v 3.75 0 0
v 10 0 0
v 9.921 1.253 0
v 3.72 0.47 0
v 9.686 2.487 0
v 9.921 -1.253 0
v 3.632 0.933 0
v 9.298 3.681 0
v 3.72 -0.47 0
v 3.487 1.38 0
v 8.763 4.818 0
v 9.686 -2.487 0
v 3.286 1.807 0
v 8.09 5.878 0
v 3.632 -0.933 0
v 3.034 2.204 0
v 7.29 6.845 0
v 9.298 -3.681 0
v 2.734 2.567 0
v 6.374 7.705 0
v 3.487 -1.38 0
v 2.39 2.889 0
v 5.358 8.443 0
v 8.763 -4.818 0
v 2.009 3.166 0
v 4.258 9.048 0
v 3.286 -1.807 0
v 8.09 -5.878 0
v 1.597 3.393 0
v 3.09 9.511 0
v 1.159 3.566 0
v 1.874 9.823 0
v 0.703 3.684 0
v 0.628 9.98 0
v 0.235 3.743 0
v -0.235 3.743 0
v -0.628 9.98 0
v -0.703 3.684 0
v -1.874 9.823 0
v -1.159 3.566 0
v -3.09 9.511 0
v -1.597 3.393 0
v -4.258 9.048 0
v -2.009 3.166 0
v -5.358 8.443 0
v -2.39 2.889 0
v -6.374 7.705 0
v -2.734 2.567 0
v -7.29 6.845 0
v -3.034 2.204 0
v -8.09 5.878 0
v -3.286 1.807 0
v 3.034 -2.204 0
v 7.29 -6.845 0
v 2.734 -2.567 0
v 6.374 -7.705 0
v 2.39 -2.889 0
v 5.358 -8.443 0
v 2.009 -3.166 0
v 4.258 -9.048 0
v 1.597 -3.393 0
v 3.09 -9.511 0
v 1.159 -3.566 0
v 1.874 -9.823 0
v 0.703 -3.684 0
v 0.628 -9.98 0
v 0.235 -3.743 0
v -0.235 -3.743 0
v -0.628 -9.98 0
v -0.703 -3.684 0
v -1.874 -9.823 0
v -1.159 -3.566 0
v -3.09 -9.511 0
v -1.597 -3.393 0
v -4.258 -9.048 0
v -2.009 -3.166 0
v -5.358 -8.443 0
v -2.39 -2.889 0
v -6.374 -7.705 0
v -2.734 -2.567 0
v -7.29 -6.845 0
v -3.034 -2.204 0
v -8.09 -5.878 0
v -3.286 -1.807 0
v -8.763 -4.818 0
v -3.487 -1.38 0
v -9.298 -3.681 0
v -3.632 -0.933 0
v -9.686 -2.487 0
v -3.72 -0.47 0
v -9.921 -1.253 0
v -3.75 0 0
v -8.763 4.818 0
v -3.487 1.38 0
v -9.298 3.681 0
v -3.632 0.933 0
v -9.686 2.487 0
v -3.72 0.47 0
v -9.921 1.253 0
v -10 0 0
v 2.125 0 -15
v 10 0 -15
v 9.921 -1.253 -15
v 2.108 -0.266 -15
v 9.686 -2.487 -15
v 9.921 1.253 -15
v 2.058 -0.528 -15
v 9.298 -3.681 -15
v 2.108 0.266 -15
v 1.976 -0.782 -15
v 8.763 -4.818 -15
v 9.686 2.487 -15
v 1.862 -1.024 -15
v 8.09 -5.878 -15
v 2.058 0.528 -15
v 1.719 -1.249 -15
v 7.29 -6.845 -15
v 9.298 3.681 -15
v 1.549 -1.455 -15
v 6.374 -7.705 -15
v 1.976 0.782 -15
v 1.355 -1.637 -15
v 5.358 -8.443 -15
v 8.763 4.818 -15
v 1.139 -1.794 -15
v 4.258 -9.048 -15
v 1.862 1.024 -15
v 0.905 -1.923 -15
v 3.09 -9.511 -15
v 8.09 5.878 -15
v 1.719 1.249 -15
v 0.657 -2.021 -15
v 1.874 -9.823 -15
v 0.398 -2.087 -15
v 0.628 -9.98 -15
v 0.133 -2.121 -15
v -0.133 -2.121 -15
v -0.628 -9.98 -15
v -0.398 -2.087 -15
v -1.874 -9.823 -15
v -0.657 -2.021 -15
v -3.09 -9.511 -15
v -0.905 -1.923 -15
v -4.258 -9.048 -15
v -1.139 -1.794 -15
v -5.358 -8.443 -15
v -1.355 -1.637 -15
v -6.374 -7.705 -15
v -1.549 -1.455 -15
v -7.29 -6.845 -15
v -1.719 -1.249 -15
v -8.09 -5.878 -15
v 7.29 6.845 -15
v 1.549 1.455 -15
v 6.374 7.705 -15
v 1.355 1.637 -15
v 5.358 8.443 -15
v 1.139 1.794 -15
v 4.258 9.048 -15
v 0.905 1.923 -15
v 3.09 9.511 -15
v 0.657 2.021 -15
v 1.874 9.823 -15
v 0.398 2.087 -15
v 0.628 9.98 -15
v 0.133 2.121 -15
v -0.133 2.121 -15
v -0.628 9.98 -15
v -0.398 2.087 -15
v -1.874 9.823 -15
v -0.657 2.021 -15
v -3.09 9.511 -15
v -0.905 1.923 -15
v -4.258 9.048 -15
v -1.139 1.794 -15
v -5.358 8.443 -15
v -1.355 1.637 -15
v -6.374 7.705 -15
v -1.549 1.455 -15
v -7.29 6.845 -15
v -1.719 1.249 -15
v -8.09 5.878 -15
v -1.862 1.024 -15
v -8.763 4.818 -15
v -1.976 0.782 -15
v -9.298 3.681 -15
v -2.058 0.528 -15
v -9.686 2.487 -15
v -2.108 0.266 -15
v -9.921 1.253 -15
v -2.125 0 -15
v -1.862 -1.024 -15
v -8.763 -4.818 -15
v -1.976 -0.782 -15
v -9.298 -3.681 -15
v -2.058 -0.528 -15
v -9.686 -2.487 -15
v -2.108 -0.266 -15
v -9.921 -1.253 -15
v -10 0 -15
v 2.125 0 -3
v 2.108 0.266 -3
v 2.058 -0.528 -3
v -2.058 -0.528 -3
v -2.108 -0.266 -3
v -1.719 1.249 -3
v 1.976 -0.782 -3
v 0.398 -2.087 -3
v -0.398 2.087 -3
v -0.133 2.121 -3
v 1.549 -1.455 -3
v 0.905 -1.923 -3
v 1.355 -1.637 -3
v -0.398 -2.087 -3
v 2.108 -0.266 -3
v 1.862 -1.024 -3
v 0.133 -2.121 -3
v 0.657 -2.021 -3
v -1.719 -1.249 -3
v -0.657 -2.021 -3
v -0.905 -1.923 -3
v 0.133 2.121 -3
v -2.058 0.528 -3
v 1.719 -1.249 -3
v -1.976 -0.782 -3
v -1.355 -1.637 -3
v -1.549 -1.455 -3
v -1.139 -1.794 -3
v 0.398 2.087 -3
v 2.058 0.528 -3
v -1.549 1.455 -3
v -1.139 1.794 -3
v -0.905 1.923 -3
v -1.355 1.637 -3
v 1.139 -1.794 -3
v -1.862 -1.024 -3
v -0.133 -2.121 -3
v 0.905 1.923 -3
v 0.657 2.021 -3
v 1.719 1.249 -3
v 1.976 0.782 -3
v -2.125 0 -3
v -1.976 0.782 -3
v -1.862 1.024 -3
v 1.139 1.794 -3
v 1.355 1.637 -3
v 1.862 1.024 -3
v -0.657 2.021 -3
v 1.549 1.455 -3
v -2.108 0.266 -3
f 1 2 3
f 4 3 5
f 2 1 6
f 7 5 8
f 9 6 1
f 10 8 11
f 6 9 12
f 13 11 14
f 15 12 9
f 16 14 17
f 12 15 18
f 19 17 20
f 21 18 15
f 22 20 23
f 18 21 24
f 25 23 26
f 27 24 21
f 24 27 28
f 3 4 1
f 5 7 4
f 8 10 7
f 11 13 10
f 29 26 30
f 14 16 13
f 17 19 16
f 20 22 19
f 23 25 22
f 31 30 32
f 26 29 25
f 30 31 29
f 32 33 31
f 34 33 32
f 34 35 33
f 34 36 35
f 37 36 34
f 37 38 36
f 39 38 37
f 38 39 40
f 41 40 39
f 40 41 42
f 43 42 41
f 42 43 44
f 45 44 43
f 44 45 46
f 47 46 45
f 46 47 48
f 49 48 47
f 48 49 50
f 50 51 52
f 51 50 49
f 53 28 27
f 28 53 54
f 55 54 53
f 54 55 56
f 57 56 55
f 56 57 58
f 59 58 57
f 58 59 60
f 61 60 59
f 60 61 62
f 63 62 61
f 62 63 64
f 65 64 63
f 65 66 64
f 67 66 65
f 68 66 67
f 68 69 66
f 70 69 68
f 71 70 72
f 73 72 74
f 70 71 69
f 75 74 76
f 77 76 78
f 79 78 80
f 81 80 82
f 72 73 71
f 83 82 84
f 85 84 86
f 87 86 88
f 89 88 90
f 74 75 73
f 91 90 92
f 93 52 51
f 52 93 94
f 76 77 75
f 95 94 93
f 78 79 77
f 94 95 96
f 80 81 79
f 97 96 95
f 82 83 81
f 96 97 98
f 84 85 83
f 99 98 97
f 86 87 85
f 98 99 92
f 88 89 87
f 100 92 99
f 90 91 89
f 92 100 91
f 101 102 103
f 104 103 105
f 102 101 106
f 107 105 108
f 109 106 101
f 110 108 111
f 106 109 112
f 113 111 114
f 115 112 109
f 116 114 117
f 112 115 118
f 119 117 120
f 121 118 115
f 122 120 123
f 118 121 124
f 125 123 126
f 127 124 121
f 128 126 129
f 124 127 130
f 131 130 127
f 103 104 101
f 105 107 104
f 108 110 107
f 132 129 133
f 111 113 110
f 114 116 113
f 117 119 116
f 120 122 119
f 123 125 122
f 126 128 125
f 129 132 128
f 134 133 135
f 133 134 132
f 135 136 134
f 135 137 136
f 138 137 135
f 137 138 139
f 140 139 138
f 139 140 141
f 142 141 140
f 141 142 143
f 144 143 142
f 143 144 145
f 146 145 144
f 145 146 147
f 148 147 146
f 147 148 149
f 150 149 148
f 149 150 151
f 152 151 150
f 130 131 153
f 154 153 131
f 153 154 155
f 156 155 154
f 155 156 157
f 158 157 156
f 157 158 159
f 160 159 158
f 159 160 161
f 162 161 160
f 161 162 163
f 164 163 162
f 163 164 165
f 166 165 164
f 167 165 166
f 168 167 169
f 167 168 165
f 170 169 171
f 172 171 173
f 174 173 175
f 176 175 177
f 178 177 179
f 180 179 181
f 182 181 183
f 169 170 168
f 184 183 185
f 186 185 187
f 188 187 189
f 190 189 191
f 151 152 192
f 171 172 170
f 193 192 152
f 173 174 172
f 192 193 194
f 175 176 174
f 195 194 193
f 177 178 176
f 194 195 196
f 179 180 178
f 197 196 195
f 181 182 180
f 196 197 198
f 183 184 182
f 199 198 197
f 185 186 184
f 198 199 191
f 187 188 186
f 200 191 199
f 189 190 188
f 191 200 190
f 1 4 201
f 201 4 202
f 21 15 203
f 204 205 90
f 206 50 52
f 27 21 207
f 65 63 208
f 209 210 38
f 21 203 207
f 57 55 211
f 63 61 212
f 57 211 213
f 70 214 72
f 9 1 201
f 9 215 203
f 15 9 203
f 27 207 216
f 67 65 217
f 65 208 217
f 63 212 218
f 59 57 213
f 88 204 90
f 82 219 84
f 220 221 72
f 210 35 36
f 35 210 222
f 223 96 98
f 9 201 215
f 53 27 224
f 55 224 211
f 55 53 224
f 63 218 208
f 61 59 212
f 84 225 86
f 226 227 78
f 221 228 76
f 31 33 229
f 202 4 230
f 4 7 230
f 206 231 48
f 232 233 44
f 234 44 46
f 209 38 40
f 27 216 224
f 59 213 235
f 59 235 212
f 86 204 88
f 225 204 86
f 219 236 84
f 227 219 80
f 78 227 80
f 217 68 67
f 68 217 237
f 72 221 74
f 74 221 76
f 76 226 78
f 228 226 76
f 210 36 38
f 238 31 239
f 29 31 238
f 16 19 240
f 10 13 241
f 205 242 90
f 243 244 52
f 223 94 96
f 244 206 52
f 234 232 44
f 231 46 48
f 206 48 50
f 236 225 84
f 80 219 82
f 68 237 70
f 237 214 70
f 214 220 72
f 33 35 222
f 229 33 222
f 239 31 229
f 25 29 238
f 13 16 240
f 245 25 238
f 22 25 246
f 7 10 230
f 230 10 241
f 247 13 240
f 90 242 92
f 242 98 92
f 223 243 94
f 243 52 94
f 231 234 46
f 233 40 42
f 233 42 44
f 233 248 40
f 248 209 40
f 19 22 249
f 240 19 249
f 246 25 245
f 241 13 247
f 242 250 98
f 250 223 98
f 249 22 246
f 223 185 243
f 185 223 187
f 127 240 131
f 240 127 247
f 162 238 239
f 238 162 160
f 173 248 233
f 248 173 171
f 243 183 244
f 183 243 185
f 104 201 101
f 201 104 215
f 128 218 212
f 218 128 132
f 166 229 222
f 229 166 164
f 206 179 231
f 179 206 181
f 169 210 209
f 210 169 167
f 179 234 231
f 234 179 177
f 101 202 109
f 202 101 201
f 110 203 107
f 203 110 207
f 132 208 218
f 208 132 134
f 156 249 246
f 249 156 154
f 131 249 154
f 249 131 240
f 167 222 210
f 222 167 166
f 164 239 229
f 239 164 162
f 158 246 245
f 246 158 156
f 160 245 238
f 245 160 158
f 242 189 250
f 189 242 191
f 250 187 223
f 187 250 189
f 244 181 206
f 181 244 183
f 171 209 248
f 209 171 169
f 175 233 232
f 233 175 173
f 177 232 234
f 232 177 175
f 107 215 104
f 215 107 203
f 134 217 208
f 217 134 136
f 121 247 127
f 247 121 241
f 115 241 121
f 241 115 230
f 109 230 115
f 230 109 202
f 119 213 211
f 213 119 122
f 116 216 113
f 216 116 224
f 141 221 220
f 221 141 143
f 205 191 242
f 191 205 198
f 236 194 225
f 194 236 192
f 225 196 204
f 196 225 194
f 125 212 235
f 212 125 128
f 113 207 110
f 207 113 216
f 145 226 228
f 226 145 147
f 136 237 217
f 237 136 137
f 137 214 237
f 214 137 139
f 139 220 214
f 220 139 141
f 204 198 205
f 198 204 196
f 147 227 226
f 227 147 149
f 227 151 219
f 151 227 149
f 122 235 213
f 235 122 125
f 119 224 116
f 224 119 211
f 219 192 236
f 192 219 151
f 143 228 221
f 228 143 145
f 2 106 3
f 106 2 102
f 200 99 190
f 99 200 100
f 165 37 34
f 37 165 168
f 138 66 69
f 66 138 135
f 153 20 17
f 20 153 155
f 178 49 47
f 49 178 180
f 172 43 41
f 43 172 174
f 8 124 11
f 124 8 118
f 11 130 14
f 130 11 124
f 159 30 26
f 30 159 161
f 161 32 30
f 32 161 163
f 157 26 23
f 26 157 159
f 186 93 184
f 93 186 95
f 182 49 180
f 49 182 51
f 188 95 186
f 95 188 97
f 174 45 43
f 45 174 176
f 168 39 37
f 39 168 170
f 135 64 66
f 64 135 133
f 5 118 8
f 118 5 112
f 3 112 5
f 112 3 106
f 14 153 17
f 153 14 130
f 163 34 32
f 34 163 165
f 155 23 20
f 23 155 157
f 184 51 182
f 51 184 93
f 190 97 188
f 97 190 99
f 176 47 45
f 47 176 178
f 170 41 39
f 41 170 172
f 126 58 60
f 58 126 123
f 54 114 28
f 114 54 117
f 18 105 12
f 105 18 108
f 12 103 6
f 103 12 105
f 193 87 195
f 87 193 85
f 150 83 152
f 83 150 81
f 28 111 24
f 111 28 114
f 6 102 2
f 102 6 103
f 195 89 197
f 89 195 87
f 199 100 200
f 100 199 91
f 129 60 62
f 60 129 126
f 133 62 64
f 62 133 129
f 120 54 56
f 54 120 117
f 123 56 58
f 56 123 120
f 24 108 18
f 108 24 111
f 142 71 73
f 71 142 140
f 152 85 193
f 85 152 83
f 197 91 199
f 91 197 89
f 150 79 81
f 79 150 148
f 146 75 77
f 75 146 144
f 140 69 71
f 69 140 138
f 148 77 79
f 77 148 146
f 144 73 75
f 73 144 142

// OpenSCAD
$fn = 50;


difference() {
	union() {
		translate(v = [0, 0, -15.0000000000]) {
			cylinder(h = 15, r = 10.0000000000);
		}
		cylinder(h = 0, r = 19.0000000000);
	}
	union() {
		translate(v = [0, 0, 0]) {
			rotate(a = [0, 0, 0]) {
				difference() {
					union() {
						#translate(v = [0, 0, -15.0000000000]) {
							cylinder(h = 15, r = 2.0000000000);
						}
						#translate(v = [0, 0, -3]) {
							cylinder(h = 3, r1 = 2.1250000000, r2 = 3.7500000000);
						}
						#translate(v = [0, 0, -15.0000000000]) {
							cylinder(h = 15, r = 2.1250000000);
						}
						#translate(v = [0, 0, -15.0000000000]) {
							cylinder(h = 15, r = 2.0000000000);
						}
					}
					union();
				}
			}
		}
	}
}
